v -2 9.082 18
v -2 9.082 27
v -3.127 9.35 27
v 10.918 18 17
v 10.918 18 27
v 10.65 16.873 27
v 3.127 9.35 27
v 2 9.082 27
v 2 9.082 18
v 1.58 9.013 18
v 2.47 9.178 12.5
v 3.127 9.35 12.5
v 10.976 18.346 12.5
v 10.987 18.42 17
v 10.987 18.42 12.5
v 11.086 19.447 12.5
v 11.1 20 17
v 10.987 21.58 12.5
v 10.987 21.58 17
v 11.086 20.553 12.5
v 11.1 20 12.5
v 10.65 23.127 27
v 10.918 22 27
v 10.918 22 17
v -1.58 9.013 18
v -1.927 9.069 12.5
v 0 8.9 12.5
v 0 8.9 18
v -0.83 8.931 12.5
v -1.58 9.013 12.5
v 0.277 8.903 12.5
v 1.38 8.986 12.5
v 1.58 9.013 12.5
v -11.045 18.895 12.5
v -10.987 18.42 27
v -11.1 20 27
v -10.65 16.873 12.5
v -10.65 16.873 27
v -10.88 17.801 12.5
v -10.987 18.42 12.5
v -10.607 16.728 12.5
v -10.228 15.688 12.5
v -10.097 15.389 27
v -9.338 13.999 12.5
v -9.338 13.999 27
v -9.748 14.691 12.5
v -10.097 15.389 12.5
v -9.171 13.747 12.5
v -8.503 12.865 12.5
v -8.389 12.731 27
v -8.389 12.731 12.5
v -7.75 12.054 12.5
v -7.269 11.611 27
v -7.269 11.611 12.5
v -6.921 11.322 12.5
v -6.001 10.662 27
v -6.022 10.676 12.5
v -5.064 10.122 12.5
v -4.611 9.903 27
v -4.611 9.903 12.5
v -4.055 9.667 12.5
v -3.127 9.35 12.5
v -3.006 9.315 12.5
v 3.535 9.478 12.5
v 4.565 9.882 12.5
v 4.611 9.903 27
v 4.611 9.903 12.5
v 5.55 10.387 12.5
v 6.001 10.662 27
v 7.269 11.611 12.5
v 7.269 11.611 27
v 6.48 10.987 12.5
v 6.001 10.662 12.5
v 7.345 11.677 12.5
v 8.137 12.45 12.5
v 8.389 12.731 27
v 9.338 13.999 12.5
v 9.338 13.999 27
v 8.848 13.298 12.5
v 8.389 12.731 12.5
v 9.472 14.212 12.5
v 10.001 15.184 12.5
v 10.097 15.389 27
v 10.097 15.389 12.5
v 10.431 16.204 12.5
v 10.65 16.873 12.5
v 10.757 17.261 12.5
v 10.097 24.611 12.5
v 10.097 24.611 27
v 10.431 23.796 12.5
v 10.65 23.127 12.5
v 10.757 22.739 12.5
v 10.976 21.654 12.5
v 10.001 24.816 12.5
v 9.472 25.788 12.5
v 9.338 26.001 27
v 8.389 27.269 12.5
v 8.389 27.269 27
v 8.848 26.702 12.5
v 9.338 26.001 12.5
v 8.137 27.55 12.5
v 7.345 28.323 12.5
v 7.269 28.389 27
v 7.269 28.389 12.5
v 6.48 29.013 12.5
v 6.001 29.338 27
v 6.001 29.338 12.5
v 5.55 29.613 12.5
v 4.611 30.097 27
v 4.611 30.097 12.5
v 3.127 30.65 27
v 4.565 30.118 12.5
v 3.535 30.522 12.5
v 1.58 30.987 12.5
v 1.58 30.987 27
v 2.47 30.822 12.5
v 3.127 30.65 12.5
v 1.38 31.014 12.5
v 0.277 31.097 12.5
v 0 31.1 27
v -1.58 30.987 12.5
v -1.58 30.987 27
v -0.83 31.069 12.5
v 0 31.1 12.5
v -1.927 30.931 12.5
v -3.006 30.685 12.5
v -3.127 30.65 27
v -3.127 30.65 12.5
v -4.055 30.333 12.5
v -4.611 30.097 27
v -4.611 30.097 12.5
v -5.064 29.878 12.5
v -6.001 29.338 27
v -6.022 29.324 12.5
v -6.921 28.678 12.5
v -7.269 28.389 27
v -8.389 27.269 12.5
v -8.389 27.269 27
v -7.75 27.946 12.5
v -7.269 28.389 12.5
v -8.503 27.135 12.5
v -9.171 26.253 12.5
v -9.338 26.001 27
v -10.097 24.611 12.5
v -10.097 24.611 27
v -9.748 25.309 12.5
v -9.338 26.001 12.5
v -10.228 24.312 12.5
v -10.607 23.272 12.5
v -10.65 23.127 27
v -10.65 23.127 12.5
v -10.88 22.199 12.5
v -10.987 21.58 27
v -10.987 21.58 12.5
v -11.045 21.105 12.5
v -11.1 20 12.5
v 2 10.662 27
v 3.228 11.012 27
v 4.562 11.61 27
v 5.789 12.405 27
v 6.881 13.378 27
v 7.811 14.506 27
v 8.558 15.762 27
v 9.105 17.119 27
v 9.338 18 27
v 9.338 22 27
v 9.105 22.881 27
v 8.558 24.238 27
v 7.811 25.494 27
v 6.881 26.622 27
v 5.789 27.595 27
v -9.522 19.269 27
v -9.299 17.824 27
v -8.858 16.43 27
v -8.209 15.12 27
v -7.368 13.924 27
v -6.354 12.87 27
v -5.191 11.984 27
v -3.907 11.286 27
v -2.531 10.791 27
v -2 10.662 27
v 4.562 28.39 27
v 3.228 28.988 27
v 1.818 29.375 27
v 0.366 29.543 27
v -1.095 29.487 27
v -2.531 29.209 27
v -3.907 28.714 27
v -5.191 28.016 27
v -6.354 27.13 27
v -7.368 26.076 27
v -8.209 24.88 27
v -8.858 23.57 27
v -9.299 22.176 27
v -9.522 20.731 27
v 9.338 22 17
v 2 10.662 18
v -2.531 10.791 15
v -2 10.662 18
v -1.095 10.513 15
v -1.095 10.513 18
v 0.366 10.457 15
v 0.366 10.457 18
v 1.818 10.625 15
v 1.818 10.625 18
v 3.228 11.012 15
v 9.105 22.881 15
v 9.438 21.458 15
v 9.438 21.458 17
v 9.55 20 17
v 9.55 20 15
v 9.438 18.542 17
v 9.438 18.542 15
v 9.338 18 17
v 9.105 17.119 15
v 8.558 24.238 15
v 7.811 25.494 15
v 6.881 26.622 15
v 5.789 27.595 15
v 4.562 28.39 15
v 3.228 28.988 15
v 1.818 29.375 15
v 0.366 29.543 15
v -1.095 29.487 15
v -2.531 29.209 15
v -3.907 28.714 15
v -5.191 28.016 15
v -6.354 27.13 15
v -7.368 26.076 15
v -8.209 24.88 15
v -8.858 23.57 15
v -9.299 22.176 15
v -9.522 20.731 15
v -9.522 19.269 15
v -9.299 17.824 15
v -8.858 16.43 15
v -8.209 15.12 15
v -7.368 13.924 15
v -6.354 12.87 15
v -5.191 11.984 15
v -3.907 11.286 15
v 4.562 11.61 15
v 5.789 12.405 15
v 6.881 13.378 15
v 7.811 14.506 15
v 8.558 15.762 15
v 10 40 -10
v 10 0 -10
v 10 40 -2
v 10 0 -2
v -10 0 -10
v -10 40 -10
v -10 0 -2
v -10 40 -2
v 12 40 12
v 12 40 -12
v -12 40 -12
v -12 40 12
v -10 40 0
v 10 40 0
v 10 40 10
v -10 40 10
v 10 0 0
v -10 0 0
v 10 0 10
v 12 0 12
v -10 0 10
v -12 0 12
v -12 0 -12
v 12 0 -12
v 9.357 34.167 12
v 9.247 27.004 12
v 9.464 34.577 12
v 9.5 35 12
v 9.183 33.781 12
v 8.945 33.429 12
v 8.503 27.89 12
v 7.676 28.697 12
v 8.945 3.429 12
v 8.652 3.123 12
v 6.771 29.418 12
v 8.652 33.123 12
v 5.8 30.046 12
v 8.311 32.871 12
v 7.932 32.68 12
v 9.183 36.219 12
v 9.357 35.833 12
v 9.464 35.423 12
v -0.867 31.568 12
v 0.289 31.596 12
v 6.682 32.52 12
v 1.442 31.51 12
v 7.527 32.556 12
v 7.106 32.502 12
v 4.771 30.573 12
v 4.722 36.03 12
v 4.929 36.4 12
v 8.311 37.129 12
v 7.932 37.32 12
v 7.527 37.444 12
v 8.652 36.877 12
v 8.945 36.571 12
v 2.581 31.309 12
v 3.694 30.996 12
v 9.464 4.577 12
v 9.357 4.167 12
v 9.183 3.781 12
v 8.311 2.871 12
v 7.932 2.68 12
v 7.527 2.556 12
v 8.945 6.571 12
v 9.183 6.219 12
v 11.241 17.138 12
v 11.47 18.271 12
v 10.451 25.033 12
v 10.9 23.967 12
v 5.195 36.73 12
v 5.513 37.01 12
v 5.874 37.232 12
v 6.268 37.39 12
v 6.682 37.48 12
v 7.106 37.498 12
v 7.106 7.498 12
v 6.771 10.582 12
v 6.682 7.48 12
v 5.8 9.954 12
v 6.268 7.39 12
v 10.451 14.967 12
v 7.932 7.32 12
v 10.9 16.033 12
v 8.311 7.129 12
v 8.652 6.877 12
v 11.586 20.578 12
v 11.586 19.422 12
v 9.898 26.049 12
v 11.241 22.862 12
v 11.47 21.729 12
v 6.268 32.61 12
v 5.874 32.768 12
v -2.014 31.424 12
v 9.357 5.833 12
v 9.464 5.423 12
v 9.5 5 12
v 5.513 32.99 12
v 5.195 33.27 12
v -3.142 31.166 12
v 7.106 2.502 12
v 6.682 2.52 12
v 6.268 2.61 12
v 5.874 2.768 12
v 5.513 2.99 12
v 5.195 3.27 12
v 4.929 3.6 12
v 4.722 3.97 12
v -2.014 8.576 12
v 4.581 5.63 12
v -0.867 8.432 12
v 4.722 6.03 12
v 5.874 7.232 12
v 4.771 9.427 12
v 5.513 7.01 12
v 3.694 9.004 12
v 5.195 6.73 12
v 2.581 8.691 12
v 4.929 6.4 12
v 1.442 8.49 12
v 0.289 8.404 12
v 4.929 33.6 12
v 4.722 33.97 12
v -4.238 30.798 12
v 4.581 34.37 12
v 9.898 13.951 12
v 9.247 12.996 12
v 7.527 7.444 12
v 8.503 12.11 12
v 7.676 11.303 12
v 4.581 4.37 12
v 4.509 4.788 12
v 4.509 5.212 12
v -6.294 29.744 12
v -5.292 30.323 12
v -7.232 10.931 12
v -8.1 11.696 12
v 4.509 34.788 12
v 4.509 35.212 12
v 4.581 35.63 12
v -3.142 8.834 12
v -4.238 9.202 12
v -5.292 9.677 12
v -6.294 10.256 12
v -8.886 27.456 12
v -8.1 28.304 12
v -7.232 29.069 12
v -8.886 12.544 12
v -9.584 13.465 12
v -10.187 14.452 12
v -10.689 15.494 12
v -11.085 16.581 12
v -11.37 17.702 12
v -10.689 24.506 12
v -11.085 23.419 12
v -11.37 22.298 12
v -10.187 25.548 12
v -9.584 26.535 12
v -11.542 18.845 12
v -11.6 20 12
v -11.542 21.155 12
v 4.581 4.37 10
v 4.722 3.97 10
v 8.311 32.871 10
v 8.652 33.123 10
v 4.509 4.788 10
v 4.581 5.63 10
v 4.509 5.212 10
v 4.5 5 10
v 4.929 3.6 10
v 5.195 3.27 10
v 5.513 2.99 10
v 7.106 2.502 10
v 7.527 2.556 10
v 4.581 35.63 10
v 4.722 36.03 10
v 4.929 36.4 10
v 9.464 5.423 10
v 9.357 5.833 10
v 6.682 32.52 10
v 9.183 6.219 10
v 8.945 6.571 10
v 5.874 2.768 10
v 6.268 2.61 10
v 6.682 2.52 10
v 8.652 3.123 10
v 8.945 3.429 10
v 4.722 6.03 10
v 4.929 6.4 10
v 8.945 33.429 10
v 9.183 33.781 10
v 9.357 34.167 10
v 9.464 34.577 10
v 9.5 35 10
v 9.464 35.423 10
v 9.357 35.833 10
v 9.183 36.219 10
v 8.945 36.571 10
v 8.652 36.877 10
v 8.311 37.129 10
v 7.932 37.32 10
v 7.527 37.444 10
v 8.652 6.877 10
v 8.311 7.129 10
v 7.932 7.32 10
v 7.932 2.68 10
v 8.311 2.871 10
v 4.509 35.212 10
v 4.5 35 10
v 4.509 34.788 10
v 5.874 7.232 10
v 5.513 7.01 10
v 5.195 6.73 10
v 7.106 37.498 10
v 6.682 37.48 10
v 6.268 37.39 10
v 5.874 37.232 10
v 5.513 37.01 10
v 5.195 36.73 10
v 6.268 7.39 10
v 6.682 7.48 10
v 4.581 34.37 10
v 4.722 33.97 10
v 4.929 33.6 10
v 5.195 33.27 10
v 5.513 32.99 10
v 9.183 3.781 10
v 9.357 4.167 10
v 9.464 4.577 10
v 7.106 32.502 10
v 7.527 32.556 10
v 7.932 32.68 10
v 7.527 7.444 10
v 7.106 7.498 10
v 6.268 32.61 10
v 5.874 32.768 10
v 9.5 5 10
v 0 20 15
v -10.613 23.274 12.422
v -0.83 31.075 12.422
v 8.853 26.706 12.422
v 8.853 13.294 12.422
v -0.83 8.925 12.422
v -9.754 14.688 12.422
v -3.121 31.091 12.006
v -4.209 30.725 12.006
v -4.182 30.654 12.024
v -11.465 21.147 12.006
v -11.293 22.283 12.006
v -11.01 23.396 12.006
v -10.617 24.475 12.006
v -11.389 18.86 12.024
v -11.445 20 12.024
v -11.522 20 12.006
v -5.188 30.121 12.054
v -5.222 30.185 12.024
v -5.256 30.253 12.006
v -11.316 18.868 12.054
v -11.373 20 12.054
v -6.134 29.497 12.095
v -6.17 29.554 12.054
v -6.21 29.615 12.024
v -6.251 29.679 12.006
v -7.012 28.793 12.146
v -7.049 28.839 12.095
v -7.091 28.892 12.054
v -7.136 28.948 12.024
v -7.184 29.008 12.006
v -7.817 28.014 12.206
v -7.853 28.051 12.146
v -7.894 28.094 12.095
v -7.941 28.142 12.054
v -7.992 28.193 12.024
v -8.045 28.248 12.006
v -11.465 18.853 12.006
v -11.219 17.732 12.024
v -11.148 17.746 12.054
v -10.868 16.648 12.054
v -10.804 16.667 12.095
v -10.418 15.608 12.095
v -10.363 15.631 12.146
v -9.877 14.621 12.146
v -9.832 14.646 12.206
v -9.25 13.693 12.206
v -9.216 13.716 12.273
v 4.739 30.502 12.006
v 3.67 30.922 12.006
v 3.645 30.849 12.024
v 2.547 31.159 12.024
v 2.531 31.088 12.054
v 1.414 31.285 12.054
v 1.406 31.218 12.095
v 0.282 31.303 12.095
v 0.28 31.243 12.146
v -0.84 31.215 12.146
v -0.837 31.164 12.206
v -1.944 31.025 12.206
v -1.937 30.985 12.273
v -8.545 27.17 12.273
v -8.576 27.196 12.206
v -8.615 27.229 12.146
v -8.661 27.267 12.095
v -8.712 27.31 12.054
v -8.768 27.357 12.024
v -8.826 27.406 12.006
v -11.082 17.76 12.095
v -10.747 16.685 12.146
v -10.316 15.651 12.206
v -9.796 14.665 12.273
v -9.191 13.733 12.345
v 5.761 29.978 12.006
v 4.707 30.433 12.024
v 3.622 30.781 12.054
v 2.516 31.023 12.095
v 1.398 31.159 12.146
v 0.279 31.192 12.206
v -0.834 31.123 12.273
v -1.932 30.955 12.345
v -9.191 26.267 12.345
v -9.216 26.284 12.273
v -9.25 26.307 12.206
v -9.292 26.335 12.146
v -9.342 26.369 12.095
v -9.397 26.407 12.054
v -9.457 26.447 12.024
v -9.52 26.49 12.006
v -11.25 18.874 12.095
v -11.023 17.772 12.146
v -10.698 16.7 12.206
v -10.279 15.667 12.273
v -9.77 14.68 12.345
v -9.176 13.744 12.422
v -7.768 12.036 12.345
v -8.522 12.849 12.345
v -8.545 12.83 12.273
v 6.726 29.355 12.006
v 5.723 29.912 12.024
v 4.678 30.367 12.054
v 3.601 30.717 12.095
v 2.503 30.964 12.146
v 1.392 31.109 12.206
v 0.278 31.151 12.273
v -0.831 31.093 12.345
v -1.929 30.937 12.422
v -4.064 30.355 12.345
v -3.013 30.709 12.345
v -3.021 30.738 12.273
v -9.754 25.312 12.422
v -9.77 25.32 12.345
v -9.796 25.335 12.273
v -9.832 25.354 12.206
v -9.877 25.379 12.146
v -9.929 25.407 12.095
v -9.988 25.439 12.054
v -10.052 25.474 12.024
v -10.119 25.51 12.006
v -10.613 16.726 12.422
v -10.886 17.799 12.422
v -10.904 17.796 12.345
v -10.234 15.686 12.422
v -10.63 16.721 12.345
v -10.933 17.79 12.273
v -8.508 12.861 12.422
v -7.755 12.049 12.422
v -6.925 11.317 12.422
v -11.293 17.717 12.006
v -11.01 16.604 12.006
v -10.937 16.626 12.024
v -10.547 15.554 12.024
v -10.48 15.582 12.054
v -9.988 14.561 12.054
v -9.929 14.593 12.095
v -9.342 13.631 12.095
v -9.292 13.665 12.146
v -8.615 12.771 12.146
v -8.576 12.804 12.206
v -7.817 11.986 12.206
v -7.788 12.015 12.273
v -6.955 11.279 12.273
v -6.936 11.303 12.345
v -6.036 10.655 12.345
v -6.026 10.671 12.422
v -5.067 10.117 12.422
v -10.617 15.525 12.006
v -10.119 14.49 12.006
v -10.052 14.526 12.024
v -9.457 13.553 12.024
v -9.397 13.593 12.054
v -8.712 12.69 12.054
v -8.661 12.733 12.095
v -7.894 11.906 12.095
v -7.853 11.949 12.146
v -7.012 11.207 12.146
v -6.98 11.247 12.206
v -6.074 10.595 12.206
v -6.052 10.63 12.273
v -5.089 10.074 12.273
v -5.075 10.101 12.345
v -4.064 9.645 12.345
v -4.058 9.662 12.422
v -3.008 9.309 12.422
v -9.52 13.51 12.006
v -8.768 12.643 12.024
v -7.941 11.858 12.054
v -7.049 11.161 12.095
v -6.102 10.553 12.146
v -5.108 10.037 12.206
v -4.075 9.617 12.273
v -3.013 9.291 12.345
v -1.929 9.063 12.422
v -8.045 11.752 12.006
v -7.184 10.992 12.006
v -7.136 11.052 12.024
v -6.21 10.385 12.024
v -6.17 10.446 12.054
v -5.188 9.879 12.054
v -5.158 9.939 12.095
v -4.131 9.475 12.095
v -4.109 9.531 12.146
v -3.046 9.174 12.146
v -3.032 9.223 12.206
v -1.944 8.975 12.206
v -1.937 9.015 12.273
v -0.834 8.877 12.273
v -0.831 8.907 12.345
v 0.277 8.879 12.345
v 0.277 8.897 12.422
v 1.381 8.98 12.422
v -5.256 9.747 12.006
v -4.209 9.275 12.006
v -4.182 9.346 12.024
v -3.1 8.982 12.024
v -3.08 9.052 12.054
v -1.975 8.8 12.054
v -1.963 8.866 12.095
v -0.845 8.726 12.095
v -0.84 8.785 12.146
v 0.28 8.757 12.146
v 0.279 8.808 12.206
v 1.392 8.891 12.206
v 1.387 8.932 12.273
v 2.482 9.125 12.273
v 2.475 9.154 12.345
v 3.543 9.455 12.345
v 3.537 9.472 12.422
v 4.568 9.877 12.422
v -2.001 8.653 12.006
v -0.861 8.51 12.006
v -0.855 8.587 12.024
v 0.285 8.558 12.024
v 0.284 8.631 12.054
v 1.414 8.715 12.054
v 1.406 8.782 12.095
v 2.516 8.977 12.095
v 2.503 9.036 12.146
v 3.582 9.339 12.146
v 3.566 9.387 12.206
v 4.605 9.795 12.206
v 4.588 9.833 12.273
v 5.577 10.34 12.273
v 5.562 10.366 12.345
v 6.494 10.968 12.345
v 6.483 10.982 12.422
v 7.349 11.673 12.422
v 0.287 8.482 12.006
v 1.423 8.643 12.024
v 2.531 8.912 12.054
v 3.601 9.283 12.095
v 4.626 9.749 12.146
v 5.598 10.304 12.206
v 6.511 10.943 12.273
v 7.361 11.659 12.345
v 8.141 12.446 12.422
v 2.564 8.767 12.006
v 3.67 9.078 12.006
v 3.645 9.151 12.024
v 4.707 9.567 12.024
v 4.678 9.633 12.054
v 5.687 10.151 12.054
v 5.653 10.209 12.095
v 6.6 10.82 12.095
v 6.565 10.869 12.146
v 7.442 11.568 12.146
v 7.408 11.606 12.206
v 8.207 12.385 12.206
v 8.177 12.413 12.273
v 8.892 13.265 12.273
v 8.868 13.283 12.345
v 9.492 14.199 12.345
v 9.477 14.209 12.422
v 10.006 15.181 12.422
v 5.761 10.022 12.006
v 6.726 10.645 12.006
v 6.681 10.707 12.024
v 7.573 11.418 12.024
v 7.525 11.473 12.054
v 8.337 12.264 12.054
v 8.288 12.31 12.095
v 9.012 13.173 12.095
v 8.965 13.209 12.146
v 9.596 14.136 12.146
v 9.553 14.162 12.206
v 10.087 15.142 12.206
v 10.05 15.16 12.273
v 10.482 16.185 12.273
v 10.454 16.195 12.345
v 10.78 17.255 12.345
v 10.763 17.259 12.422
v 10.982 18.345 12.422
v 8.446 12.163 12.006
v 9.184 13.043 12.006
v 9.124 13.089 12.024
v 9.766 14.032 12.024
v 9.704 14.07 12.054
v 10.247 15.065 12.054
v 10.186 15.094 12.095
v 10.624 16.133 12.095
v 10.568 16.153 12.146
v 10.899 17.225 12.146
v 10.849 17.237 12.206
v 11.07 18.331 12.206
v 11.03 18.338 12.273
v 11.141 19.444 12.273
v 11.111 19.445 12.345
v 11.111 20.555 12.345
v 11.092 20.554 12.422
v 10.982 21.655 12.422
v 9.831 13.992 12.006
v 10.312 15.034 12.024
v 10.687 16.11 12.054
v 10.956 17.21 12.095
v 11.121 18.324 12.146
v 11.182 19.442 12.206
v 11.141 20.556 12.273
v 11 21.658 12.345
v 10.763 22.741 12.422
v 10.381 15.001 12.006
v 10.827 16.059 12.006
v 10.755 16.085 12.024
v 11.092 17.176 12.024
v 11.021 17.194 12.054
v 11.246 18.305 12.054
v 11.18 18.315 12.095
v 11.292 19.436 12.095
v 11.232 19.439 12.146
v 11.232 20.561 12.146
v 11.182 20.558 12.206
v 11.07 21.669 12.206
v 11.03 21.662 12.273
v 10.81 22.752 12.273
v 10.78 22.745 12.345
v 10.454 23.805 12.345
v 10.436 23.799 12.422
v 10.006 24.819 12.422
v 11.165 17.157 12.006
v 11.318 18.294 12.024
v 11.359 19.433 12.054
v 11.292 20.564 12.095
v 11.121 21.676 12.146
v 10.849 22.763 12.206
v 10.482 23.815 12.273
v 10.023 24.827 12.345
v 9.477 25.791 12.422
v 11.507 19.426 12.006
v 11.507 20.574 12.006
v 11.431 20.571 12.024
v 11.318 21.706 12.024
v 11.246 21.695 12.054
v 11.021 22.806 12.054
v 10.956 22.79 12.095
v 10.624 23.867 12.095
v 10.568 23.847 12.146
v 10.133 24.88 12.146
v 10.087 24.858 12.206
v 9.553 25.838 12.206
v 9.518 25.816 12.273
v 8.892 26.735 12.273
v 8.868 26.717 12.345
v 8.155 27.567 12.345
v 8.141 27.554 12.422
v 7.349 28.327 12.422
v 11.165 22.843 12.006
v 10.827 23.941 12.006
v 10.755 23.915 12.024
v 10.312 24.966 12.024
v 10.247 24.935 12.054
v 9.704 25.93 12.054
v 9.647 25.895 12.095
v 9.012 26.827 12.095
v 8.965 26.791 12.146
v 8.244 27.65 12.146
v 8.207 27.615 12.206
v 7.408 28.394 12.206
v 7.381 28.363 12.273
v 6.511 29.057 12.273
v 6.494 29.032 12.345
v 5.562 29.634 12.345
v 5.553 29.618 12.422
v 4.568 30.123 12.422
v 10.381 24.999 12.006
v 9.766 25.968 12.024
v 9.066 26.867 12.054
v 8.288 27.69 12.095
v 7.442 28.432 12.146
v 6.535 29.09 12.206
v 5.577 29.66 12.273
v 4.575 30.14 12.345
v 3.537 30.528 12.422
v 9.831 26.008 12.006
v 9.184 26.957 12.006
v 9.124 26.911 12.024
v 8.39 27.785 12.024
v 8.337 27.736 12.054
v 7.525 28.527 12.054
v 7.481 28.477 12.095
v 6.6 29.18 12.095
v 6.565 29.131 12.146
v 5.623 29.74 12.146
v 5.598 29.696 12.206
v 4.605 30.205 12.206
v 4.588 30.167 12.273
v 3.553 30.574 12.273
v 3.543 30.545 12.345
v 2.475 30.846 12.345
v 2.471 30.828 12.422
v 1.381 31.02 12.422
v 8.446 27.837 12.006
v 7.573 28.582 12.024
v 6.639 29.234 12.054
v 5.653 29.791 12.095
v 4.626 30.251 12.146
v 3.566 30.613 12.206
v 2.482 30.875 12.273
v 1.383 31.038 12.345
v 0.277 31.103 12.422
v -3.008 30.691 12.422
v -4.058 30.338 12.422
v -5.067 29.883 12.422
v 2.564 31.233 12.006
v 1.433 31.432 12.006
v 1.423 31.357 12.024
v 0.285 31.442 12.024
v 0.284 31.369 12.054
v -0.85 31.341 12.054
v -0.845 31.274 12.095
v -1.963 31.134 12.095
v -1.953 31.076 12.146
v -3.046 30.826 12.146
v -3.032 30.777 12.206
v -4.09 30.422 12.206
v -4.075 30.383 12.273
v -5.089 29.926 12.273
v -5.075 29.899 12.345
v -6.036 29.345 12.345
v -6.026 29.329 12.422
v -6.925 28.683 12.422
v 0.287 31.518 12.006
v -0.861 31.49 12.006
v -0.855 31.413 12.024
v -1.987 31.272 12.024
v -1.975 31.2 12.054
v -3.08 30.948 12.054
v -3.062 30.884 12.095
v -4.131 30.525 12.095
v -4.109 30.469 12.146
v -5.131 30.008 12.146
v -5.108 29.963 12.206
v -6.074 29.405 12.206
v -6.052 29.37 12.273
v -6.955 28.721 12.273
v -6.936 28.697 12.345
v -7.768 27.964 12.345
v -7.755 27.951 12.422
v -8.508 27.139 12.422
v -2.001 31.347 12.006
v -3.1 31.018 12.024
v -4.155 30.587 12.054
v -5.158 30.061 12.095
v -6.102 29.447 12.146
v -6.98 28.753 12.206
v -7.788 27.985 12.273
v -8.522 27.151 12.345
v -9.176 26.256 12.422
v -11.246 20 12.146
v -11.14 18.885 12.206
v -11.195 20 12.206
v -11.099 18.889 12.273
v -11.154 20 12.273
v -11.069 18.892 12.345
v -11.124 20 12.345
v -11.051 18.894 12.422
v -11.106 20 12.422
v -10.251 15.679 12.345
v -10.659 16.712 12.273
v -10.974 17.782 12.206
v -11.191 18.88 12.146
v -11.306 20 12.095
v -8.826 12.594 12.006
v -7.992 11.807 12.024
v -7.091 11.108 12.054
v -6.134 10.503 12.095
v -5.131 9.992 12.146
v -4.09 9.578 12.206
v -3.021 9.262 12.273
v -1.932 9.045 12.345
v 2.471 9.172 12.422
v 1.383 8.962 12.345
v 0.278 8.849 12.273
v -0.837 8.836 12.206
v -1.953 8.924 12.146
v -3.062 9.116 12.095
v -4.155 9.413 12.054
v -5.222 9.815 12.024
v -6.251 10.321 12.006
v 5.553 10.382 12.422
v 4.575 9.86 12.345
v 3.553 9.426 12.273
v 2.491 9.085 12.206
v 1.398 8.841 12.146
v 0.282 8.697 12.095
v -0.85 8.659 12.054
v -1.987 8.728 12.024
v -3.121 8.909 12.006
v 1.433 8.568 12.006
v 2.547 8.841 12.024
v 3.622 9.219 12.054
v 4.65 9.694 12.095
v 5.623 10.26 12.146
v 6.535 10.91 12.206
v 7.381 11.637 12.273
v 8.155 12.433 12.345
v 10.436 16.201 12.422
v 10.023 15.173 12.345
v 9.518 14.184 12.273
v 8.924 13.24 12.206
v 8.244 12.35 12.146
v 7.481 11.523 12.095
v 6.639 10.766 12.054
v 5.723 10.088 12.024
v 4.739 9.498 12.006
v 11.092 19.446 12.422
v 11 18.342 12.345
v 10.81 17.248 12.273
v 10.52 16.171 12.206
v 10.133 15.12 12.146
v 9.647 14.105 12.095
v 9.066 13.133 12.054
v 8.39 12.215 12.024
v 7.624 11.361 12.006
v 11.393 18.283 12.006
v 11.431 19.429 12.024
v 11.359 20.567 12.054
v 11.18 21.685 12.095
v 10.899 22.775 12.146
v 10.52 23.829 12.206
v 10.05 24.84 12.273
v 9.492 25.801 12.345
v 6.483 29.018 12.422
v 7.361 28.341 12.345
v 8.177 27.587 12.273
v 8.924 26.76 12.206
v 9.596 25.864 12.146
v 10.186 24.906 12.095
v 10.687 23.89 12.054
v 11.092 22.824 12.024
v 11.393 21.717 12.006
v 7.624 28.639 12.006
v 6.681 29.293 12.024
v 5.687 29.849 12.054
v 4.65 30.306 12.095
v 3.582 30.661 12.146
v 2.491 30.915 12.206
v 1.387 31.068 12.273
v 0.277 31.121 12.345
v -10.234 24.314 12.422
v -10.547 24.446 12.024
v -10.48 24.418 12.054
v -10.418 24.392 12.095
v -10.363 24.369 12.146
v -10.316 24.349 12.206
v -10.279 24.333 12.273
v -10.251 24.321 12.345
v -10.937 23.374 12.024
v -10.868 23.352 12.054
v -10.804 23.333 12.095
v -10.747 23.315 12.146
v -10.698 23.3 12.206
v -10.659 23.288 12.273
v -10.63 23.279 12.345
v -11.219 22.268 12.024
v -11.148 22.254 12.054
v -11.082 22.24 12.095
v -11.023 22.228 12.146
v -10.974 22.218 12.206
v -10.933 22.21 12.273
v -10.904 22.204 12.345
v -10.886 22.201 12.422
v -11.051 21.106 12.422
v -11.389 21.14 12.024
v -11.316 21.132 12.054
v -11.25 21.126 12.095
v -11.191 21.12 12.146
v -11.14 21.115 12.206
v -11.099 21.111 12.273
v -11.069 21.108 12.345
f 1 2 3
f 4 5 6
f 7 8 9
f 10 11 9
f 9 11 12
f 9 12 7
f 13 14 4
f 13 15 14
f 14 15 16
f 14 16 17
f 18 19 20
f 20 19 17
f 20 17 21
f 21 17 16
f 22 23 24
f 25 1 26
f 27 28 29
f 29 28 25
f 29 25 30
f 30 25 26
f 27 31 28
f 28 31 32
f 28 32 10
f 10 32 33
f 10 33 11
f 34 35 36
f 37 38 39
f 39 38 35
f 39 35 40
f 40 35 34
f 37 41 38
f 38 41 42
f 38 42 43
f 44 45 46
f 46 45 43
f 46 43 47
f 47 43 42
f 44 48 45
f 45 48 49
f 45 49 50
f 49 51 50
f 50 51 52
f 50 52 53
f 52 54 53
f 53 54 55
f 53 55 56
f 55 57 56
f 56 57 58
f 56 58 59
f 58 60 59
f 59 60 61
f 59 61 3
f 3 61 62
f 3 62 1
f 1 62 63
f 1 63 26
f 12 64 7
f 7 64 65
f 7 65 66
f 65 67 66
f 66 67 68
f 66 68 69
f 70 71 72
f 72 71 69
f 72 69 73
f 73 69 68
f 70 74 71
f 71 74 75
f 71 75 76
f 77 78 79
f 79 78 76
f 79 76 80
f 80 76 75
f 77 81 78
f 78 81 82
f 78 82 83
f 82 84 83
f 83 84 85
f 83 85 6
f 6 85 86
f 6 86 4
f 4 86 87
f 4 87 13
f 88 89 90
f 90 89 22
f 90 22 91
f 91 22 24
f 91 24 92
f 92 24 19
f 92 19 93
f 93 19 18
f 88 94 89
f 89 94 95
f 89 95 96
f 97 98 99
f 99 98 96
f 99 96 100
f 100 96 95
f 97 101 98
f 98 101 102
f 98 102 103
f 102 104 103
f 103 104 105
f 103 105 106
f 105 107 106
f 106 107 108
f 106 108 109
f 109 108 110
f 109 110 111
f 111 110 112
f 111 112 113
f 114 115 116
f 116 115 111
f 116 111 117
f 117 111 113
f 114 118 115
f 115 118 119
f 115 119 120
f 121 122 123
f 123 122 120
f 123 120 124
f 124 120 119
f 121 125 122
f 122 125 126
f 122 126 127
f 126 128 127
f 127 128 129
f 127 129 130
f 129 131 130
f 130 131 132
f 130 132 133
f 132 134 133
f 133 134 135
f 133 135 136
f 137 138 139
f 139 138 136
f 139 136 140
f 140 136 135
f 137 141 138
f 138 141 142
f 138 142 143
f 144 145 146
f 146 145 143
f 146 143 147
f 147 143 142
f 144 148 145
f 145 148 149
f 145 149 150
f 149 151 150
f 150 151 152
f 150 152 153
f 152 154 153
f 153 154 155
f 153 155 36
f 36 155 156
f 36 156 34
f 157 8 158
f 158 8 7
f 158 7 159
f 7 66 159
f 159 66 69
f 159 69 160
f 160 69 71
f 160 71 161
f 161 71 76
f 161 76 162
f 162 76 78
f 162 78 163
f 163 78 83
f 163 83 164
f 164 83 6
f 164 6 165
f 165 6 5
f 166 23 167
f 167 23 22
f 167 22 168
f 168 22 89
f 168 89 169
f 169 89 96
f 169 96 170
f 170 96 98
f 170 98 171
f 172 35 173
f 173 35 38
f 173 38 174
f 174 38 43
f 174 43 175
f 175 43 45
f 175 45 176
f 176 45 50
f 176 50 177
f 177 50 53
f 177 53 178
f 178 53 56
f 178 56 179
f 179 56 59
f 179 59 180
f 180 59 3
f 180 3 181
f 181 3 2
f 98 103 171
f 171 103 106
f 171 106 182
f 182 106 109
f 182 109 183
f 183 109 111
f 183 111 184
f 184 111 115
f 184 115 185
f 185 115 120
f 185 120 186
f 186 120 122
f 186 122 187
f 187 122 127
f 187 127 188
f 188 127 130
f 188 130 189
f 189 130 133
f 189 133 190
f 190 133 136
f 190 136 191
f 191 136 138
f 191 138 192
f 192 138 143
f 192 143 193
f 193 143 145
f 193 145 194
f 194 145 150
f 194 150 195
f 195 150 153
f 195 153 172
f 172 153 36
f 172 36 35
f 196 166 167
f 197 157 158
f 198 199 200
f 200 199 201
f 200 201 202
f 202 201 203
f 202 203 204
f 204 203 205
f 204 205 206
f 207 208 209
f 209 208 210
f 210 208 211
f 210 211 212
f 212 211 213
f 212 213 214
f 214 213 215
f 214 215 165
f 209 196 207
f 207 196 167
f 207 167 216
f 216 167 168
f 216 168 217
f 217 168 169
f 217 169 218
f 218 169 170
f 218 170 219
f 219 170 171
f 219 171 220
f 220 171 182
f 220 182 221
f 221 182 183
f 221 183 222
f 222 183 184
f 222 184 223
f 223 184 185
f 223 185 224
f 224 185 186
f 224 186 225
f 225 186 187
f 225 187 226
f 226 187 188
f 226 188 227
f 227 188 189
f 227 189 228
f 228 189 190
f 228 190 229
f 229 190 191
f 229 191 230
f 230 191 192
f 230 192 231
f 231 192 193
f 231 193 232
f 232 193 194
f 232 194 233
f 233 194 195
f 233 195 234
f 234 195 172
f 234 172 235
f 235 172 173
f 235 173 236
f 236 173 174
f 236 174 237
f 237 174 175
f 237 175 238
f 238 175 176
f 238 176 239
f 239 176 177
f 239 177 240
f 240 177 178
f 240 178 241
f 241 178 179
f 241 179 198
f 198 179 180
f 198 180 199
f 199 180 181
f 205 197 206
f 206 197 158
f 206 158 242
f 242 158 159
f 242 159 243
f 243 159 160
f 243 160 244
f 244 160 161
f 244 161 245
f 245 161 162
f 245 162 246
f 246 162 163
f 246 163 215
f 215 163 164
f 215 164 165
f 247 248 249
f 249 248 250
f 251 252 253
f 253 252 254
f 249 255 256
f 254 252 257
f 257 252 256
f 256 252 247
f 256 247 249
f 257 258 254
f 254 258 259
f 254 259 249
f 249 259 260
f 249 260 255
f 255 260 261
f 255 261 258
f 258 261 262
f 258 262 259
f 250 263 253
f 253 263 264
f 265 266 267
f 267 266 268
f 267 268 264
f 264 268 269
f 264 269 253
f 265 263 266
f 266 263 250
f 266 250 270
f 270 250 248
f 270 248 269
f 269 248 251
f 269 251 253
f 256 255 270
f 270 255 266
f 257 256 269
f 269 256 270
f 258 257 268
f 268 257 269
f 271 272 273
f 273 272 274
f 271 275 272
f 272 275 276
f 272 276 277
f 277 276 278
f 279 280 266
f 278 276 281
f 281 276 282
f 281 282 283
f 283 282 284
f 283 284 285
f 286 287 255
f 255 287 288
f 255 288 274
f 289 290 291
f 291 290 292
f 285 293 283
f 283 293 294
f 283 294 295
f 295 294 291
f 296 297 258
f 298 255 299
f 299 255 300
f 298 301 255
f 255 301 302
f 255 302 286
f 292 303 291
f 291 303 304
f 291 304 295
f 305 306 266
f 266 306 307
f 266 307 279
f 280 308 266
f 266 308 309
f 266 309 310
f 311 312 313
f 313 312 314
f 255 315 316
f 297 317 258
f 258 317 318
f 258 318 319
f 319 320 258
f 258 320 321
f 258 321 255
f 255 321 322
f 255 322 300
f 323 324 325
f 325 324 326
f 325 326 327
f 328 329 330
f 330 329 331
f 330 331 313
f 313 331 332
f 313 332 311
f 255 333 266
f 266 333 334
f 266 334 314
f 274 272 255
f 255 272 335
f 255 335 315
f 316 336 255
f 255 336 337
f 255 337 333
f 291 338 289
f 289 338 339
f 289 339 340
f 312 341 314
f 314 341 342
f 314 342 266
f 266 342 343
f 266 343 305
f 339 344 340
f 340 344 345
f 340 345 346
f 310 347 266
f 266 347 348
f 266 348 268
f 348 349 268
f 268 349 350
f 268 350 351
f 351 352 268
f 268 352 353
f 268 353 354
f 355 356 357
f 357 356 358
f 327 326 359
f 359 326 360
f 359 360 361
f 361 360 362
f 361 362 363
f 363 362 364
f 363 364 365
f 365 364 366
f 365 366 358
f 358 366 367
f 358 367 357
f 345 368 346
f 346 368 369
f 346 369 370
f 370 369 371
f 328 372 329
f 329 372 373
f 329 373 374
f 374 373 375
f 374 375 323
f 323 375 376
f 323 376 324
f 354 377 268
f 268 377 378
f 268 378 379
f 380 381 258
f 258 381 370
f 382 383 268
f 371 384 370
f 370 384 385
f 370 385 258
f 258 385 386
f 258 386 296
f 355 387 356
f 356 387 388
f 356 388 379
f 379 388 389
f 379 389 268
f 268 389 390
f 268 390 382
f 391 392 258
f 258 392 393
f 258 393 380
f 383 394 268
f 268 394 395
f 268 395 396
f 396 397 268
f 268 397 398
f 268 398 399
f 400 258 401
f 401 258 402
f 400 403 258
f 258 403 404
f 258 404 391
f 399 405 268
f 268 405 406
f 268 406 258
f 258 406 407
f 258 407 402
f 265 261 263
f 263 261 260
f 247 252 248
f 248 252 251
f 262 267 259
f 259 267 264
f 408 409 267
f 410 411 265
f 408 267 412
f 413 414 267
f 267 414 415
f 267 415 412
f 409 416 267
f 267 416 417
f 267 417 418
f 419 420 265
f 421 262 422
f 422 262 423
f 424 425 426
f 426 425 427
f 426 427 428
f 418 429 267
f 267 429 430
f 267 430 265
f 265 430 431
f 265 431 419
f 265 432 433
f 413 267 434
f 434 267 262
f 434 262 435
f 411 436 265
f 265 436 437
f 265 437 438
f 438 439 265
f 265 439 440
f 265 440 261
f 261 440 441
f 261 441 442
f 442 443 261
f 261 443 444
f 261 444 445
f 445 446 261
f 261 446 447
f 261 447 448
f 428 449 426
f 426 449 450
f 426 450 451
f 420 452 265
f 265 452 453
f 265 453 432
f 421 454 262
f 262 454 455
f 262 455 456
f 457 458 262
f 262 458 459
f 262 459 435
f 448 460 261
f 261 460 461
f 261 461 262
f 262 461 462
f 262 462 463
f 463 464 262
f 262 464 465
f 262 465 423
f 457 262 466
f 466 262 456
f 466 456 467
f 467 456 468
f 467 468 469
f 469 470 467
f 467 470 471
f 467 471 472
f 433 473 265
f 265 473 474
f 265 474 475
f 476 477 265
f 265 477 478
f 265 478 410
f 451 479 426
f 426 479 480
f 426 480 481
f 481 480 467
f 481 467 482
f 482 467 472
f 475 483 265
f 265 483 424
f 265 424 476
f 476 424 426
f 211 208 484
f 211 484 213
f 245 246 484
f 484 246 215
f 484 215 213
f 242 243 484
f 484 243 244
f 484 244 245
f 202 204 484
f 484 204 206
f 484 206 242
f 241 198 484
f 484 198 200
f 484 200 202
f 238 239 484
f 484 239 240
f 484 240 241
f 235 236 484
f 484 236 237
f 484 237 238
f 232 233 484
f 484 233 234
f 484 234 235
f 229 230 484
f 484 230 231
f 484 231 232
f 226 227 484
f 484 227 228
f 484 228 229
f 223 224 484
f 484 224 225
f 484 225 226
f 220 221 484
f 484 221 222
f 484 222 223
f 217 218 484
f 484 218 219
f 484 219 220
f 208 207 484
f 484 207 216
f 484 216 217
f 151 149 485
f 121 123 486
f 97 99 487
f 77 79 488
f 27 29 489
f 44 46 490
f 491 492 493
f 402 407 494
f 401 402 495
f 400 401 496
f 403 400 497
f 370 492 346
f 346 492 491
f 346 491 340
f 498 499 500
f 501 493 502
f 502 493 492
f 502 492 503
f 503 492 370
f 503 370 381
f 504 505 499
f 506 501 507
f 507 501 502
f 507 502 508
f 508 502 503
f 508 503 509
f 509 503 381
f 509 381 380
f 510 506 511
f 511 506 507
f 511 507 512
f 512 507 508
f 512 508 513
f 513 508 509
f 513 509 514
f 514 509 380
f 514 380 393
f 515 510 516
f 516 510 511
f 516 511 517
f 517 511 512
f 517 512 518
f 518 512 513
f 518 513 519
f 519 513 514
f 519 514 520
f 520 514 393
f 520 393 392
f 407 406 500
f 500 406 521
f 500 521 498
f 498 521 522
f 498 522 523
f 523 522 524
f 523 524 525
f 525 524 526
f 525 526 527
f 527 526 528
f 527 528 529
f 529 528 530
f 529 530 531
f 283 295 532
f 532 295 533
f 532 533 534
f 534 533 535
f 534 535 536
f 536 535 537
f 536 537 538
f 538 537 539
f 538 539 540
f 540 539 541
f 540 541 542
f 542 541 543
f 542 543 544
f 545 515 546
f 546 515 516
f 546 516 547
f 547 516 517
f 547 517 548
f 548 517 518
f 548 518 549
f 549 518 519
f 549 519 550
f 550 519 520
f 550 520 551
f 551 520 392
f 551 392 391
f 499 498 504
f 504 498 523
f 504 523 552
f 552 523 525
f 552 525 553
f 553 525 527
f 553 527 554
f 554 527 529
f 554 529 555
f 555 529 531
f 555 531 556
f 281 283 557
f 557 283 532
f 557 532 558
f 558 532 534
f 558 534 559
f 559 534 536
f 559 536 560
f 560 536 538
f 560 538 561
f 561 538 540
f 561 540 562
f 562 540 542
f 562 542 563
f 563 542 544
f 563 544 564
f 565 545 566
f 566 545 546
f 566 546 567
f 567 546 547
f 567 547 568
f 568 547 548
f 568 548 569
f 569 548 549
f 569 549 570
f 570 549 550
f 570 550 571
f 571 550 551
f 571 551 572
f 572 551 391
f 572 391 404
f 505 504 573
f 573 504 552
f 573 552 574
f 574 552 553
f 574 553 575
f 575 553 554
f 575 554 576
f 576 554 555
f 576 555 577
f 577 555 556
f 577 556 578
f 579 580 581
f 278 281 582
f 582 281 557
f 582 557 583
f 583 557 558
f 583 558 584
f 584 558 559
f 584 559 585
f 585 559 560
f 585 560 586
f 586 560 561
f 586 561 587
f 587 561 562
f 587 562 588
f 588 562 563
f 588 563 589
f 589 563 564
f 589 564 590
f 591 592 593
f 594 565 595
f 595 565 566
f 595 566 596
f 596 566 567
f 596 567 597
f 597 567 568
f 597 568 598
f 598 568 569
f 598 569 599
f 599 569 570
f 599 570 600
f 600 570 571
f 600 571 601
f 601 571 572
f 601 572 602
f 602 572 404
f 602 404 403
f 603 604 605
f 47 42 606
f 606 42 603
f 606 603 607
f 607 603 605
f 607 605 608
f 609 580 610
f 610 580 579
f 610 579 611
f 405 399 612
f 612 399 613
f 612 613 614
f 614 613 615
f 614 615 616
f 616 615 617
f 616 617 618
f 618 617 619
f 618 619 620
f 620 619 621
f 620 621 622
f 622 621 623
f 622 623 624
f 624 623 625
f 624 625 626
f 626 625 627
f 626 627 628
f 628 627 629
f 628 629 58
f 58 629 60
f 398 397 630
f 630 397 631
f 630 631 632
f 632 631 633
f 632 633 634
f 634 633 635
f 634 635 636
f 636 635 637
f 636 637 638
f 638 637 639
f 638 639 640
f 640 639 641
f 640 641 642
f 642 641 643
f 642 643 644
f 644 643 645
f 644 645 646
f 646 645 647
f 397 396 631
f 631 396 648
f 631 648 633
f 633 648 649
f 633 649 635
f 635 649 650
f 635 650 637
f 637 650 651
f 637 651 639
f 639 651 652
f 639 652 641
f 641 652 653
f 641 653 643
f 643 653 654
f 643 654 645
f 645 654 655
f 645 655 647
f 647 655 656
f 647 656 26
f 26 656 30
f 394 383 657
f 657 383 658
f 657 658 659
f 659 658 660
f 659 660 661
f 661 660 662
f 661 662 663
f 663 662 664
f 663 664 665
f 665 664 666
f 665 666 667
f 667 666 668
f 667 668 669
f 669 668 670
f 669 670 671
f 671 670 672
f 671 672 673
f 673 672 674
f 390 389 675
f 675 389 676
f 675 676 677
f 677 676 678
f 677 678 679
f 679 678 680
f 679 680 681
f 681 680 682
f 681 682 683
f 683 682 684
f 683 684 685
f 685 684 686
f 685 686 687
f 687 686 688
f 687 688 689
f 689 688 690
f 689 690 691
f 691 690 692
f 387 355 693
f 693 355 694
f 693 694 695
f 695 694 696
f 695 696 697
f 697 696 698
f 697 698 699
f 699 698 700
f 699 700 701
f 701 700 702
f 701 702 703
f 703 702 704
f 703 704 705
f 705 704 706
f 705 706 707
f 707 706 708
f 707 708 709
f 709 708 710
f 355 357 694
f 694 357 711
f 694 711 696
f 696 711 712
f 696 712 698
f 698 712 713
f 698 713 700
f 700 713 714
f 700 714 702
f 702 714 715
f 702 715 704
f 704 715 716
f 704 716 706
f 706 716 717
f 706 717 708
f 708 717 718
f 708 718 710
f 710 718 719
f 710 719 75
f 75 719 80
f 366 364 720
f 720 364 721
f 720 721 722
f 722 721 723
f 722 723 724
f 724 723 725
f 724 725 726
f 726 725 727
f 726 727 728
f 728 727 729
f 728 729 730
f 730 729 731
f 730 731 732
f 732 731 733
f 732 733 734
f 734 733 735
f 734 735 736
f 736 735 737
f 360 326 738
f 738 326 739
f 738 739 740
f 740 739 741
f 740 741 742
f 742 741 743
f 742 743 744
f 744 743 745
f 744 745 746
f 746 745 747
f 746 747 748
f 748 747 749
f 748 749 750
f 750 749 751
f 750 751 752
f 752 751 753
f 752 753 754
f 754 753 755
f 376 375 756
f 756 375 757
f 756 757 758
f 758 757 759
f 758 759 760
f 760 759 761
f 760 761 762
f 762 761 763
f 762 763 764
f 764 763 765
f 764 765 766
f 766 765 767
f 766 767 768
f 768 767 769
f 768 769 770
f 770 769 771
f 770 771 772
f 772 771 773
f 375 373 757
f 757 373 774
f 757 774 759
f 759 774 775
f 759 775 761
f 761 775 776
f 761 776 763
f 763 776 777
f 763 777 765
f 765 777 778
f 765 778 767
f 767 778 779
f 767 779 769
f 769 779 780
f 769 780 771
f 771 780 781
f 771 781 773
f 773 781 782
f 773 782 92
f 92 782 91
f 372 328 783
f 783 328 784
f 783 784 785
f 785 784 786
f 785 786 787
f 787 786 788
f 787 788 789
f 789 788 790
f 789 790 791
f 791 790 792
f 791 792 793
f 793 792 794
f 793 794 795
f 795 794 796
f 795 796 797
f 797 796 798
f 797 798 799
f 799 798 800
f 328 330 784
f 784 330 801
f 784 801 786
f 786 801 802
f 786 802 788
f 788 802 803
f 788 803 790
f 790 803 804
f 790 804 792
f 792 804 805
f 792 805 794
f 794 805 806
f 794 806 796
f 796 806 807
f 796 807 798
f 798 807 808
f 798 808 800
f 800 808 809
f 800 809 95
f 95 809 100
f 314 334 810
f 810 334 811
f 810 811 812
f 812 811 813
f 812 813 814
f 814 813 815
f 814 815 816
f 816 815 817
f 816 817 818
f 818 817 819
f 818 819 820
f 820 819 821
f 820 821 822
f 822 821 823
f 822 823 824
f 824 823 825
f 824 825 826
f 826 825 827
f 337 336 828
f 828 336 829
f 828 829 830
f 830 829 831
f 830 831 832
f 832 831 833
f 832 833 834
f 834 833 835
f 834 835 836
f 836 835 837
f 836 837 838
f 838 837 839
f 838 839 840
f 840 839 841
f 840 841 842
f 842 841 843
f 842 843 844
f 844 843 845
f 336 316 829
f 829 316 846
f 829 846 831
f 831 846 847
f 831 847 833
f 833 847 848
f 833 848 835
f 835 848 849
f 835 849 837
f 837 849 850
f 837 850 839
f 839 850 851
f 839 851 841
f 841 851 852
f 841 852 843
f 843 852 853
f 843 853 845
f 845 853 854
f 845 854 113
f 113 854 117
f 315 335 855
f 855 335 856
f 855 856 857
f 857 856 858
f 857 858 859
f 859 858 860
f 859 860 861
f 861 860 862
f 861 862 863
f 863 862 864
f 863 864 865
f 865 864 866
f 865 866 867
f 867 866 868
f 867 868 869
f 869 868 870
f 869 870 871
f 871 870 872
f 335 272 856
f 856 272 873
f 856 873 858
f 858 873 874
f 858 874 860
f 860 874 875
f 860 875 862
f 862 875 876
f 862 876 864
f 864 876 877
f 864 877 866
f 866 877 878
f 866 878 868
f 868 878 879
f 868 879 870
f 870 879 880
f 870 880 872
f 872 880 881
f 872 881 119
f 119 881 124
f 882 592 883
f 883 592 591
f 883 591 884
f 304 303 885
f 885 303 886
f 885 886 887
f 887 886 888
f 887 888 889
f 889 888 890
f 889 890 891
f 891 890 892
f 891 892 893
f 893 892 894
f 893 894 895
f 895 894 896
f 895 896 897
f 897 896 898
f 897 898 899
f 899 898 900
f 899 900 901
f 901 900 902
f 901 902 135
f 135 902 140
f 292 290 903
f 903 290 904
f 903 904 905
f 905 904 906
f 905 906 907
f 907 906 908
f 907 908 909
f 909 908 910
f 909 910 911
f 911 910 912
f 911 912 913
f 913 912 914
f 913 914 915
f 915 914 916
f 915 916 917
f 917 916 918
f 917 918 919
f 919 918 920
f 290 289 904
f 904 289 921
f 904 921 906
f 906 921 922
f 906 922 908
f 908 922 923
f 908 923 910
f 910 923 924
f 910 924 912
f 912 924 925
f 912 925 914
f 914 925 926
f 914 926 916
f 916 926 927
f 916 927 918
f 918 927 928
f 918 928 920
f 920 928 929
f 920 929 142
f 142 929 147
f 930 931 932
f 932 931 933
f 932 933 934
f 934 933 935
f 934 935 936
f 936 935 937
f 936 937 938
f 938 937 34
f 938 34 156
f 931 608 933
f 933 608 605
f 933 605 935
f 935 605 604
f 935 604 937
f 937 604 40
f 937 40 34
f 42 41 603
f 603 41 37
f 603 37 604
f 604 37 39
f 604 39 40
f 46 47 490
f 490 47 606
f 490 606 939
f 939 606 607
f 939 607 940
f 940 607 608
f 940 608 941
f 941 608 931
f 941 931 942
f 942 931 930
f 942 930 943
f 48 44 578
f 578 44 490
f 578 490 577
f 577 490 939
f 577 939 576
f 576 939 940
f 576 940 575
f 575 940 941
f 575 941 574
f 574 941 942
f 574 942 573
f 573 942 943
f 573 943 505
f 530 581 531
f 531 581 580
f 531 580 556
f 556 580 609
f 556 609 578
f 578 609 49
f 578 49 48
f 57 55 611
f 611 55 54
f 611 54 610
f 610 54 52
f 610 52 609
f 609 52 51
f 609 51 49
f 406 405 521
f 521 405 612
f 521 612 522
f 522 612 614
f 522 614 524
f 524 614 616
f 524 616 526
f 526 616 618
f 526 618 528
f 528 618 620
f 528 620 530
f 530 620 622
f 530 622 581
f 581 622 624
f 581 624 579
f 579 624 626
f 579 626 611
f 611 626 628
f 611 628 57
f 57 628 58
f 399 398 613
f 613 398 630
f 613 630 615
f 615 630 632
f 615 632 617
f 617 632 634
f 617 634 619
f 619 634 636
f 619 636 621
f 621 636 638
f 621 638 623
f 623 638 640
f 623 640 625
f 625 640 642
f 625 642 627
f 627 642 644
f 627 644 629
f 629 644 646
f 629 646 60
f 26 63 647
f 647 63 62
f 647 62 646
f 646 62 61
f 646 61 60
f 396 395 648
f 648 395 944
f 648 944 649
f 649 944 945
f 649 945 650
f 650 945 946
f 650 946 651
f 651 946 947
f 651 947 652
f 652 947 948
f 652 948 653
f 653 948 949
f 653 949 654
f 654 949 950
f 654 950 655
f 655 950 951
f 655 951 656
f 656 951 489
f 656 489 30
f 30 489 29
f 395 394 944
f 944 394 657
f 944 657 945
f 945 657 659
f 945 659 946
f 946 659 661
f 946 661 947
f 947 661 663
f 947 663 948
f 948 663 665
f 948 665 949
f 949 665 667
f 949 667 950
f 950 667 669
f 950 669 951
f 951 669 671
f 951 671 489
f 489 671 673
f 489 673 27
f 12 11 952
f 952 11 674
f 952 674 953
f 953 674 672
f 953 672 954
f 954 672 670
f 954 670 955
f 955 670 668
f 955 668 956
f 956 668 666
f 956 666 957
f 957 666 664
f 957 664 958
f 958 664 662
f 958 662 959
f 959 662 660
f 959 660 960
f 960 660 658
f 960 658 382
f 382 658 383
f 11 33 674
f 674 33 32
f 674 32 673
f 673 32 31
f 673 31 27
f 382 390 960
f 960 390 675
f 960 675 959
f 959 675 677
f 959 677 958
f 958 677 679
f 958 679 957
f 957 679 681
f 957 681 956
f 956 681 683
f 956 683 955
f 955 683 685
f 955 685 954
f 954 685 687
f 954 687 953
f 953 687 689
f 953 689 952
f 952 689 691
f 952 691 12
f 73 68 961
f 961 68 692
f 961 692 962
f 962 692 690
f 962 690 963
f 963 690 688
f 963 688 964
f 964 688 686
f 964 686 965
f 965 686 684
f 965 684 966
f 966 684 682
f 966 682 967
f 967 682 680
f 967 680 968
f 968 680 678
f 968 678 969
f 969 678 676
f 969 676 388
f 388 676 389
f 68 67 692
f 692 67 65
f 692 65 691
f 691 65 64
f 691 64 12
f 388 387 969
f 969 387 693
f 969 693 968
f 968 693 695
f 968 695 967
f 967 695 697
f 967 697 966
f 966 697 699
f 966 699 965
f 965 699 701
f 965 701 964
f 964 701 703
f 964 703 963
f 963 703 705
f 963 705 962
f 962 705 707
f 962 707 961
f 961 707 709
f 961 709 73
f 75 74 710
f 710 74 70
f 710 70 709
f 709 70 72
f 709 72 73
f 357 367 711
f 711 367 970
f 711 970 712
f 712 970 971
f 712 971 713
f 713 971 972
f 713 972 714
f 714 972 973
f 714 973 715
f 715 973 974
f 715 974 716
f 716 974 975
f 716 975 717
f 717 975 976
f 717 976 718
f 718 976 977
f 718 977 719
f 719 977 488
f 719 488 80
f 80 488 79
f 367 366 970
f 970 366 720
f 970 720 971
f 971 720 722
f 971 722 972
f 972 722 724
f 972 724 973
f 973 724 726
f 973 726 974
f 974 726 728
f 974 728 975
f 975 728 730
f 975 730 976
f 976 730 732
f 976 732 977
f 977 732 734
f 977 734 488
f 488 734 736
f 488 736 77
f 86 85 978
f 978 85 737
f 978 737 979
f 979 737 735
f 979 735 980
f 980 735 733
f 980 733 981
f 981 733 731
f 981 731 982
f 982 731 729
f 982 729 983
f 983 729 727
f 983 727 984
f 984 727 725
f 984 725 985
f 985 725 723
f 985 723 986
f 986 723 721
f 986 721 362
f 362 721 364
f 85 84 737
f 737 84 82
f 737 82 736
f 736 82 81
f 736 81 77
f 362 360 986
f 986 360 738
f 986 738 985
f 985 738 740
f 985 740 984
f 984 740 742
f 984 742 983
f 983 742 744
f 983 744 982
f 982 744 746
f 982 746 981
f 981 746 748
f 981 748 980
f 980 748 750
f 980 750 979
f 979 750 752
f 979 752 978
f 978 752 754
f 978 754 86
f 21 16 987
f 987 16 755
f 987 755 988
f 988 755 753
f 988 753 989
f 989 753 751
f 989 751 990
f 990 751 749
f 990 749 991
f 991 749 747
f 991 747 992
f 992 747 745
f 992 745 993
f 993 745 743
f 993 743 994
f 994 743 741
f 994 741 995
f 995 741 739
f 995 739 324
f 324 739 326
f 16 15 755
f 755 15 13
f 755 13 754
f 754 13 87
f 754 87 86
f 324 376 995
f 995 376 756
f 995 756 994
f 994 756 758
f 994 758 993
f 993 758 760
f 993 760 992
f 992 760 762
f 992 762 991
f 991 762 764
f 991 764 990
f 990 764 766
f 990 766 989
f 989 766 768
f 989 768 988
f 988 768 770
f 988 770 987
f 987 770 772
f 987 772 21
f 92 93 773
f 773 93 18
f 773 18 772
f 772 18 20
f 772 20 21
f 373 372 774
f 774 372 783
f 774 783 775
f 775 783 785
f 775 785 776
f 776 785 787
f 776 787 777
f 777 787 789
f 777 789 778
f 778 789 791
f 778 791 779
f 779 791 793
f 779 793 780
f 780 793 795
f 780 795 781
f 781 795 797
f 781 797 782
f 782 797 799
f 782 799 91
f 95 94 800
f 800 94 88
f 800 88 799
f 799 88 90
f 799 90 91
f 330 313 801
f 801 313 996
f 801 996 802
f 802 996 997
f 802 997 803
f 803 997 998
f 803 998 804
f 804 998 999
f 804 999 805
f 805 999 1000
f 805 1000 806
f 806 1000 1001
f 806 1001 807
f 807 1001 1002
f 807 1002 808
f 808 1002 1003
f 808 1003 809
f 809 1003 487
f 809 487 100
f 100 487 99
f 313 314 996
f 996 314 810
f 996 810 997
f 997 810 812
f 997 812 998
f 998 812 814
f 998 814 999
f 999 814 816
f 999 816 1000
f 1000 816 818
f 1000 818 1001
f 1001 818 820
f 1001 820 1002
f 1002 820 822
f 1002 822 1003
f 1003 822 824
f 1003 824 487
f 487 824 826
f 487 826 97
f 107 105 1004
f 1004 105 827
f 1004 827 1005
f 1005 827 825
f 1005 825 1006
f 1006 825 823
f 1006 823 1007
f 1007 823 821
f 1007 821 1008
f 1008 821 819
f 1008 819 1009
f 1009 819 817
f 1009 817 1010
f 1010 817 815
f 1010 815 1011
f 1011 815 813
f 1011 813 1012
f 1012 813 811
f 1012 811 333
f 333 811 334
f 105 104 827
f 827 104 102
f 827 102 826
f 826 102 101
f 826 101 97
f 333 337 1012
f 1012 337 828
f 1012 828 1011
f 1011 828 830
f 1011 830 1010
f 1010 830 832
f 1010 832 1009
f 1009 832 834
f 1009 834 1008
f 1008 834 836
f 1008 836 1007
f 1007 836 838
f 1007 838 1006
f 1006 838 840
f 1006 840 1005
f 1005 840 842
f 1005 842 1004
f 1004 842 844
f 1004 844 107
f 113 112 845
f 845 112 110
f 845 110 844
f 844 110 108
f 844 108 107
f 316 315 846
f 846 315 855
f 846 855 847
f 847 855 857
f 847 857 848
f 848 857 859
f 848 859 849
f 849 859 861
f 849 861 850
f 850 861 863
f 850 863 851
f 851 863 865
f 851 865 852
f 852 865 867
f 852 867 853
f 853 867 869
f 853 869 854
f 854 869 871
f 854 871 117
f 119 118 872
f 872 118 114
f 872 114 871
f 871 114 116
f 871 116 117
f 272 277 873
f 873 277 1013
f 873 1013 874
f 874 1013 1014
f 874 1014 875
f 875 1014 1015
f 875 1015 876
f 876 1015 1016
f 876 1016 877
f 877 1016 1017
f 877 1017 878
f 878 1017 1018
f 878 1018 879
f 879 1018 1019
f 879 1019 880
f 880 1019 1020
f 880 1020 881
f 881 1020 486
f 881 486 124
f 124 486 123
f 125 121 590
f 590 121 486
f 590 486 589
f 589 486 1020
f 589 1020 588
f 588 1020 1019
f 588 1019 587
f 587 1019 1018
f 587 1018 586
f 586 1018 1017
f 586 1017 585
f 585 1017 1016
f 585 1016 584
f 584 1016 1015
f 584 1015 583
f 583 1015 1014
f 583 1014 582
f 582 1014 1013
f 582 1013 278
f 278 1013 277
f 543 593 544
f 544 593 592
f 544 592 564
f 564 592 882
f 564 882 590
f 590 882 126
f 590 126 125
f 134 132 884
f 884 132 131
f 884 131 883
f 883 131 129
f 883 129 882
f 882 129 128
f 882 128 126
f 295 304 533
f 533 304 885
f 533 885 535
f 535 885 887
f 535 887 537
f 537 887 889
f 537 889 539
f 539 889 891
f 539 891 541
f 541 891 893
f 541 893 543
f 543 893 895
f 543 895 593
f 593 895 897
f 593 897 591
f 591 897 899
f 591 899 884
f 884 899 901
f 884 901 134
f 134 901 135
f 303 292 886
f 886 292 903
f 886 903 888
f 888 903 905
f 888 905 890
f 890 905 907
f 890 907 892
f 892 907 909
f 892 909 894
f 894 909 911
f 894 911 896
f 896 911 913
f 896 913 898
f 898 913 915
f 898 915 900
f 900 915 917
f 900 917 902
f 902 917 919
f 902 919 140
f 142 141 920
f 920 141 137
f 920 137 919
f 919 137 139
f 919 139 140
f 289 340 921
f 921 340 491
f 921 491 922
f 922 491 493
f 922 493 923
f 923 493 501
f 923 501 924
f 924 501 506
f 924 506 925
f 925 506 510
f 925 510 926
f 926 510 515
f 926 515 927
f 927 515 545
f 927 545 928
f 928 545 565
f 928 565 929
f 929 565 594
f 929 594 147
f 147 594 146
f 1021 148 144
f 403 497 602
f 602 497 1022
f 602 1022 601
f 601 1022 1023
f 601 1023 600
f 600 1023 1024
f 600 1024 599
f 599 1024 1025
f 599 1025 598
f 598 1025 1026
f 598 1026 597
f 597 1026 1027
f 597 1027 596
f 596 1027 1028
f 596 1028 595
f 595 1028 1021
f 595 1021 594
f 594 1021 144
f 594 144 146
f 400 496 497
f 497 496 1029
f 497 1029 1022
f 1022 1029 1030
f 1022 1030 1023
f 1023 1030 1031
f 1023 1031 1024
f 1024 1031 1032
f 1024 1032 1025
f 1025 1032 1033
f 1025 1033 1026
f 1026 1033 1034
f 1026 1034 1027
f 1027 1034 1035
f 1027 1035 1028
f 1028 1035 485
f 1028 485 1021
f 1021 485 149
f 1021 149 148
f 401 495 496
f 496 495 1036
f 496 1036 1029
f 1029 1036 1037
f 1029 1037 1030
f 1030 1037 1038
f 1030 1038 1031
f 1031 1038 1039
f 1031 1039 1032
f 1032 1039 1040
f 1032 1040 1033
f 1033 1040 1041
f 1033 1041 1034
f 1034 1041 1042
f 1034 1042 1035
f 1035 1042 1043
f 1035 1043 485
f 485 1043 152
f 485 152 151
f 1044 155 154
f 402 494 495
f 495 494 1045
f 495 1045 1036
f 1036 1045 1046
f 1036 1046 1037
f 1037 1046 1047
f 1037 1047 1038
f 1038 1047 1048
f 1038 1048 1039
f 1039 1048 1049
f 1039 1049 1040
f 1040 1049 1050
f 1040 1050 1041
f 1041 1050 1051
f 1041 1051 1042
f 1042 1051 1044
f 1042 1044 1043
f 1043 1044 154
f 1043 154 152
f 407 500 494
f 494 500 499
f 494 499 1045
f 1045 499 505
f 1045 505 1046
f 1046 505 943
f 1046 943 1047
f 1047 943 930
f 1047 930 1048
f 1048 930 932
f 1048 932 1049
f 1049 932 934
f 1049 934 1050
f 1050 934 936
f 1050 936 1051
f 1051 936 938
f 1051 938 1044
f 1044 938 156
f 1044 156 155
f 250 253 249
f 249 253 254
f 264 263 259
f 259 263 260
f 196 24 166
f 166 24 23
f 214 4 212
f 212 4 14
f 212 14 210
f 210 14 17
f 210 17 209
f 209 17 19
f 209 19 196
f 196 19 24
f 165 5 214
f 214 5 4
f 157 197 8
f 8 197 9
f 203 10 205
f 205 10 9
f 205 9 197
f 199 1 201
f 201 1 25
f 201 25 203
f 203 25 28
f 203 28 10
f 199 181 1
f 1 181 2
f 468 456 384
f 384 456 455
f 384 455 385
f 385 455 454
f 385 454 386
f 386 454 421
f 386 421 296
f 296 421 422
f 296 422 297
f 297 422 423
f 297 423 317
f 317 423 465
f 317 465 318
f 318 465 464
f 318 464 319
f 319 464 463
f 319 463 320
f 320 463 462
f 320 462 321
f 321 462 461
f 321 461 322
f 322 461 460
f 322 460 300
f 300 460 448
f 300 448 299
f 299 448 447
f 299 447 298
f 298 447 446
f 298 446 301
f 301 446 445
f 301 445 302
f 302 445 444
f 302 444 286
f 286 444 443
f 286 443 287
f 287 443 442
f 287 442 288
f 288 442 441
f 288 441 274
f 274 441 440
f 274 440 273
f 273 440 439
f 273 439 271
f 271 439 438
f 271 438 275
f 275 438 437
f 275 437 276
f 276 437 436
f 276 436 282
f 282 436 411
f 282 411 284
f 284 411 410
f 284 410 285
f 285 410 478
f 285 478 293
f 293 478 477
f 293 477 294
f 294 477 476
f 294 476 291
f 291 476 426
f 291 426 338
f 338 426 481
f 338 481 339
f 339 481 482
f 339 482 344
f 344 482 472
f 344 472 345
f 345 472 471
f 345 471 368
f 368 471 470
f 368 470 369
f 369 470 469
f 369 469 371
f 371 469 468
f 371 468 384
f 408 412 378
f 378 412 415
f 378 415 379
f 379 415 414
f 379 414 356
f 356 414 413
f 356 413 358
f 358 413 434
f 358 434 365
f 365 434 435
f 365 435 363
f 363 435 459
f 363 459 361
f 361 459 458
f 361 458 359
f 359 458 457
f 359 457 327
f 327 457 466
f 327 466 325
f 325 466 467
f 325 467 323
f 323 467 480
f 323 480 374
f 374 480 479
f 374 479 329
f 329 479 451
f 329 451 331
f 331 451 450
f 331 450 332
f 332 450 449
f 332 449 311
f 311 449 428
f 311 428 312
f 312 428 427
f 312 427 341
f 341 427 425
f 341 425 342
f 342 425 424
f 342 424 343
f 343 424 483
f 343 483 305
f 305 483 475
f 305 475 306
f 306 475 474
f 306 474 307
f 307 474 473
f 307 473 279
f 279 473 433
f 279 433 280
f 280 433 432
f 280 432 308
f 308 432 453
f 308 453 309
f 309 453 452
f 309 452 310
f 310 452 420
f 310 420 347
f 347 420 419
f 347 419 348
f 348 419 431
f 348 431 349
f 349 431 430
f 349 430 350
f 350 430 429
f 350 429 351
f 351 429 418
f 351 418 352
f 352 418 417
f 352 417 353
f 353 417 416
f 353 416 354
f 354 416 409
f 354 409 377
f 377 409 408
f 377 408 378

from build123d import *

# Parameters (mm, degrees)
SKETCH1_W           = 24
SKETCH1_H           = 24
BOSS_EXTRUDE1_DEPTH = 40
SHELL3_T            = -2
SKETCH3_R           = 11.1
BOSS_EXTRUDE3_DEPTH = 15
SKETCH4_R           = 9.55
CUT_EXTRUDE3_DEPTH  = 12
FILLET4_R           = 0.5
SKETCH2_W           = 20
SKETCH2_H           = 2
BOSS_EXTRUDE5_DEPTH = 40
SKETCH6_W           = 20
SKETCH6_H           = 4
CUT_EXTRUDE4_DEPTH  = 8
SKETCH7_W           = 4
SKETCH7_H           = 18
CUT_EXTRUDE5_DEPTH  = 8
SKETCH8_R           = 2.5
CUT_EXTRUDE6_DEPTH  = 2


with BuildPart() as part:
    # Sketch1 → Boss-Extrude1 (new body)
    with BuildSketch(Plane(origin=(0, 0, 0), x_dir=(1, 0, 0), z_dir=(0, 1, 0))):
        Rectangle(SKETCH1_W, SKETCH1_H)
    extrude(amount=BOSS_EXTRUDE1_DEPTH)

    # Shell3
    shell3_openings = [part.faces().sort_by_distance(p)[0] for p in [
        (0, 40, 0),
        (0, 0, 0),
    ]]
    offset(amount=SHELL3_T, openings=shell3_openings, kind=Kind.INTERSECTION)

    # Sketch3 → Boss-Extrude3 (add)
    with BuildSketch(Plane.XY.offset(12)):
        with Locations((0, 20)):
            Circle(SKETCH3_R)
    extrude(amount=BOSS_EXTRUDE3_DEPTH)

    # Sketch4 → Cut-Extrude3 (cut)
    with BuildSketch(Plane.XY.offset(27)):
        with Locations((0, 20)):
            Circle(SKETCH4_R)
    extrude(amount=-CUT_EXTRUDE3_DEPTH, mode=Mode.SUBTRACT)

    # Fillet4
    fillet4_edges = [part.edges().sort_by_distance(p)[0] for p in [
        (-11.1, 20, 12),
    ]]
    fillet(fillet4_edges, radius=FILLET4_R)

    # Sketch2 → Boss-Extrude5 (add)
    with BuildSketch(Plane(origin=(0, 40, 0), x_dir=(1, 0, 0), z_dir=(0, 1, 0))):
        with Locations((0, 1)):
            Rectangle(SKETCH2_W, SKETCH2_H)
    extrude(amount=-BOSS_EXTRUDE5_DEPTH)

    # Sketch6 → Cut-Extrude4 (cut)
    with BuildSketch(Plane(origin=(11.1, 0, 0), x_dir=(0, 0, -1), z_dir=(1, 0, 0))):
        with Locations((-27, 20)):
            Rectangle(SKETCH6_W, SKETCH6_H)
    extrude(amount=-CUT_EXTRUDE4_DEPTH, mode=Mode.SUBTRACT)

    # Sketch7 → Cut-Extrude5 (cut)
    with BuildSketch(Plane(origin=(0, 8.9, 0), x_dir=(1, 0, 0), z_dir=(0, 1, 0))):
        with Locations((0, -27)):
            Rectangle(SKETCH7_W, SKETCH7_H)
    extrude(amount=CUT_EXTRUDE5_DEPTH, mode=Mode.SUBTRACT)

    # Sketch8 → Cut-Extrude6 (cut)
    with BuildSketch(Plane.XY.offset(12)):
        with Locations((7, 35)):
            Circle(SKETCH8_R)
    cut_extrude6 = extrude(amount=-CUT_EXTRUDE6_DEPTH, mode=Mode.SUBTRACT)

    # Mirror1: Cut-Extrude6 across plane
    add(cut_extrude6.mirror(Plane.ZX.offset(20)), mode=Mode.SUBTRACT)


solid = part.part
